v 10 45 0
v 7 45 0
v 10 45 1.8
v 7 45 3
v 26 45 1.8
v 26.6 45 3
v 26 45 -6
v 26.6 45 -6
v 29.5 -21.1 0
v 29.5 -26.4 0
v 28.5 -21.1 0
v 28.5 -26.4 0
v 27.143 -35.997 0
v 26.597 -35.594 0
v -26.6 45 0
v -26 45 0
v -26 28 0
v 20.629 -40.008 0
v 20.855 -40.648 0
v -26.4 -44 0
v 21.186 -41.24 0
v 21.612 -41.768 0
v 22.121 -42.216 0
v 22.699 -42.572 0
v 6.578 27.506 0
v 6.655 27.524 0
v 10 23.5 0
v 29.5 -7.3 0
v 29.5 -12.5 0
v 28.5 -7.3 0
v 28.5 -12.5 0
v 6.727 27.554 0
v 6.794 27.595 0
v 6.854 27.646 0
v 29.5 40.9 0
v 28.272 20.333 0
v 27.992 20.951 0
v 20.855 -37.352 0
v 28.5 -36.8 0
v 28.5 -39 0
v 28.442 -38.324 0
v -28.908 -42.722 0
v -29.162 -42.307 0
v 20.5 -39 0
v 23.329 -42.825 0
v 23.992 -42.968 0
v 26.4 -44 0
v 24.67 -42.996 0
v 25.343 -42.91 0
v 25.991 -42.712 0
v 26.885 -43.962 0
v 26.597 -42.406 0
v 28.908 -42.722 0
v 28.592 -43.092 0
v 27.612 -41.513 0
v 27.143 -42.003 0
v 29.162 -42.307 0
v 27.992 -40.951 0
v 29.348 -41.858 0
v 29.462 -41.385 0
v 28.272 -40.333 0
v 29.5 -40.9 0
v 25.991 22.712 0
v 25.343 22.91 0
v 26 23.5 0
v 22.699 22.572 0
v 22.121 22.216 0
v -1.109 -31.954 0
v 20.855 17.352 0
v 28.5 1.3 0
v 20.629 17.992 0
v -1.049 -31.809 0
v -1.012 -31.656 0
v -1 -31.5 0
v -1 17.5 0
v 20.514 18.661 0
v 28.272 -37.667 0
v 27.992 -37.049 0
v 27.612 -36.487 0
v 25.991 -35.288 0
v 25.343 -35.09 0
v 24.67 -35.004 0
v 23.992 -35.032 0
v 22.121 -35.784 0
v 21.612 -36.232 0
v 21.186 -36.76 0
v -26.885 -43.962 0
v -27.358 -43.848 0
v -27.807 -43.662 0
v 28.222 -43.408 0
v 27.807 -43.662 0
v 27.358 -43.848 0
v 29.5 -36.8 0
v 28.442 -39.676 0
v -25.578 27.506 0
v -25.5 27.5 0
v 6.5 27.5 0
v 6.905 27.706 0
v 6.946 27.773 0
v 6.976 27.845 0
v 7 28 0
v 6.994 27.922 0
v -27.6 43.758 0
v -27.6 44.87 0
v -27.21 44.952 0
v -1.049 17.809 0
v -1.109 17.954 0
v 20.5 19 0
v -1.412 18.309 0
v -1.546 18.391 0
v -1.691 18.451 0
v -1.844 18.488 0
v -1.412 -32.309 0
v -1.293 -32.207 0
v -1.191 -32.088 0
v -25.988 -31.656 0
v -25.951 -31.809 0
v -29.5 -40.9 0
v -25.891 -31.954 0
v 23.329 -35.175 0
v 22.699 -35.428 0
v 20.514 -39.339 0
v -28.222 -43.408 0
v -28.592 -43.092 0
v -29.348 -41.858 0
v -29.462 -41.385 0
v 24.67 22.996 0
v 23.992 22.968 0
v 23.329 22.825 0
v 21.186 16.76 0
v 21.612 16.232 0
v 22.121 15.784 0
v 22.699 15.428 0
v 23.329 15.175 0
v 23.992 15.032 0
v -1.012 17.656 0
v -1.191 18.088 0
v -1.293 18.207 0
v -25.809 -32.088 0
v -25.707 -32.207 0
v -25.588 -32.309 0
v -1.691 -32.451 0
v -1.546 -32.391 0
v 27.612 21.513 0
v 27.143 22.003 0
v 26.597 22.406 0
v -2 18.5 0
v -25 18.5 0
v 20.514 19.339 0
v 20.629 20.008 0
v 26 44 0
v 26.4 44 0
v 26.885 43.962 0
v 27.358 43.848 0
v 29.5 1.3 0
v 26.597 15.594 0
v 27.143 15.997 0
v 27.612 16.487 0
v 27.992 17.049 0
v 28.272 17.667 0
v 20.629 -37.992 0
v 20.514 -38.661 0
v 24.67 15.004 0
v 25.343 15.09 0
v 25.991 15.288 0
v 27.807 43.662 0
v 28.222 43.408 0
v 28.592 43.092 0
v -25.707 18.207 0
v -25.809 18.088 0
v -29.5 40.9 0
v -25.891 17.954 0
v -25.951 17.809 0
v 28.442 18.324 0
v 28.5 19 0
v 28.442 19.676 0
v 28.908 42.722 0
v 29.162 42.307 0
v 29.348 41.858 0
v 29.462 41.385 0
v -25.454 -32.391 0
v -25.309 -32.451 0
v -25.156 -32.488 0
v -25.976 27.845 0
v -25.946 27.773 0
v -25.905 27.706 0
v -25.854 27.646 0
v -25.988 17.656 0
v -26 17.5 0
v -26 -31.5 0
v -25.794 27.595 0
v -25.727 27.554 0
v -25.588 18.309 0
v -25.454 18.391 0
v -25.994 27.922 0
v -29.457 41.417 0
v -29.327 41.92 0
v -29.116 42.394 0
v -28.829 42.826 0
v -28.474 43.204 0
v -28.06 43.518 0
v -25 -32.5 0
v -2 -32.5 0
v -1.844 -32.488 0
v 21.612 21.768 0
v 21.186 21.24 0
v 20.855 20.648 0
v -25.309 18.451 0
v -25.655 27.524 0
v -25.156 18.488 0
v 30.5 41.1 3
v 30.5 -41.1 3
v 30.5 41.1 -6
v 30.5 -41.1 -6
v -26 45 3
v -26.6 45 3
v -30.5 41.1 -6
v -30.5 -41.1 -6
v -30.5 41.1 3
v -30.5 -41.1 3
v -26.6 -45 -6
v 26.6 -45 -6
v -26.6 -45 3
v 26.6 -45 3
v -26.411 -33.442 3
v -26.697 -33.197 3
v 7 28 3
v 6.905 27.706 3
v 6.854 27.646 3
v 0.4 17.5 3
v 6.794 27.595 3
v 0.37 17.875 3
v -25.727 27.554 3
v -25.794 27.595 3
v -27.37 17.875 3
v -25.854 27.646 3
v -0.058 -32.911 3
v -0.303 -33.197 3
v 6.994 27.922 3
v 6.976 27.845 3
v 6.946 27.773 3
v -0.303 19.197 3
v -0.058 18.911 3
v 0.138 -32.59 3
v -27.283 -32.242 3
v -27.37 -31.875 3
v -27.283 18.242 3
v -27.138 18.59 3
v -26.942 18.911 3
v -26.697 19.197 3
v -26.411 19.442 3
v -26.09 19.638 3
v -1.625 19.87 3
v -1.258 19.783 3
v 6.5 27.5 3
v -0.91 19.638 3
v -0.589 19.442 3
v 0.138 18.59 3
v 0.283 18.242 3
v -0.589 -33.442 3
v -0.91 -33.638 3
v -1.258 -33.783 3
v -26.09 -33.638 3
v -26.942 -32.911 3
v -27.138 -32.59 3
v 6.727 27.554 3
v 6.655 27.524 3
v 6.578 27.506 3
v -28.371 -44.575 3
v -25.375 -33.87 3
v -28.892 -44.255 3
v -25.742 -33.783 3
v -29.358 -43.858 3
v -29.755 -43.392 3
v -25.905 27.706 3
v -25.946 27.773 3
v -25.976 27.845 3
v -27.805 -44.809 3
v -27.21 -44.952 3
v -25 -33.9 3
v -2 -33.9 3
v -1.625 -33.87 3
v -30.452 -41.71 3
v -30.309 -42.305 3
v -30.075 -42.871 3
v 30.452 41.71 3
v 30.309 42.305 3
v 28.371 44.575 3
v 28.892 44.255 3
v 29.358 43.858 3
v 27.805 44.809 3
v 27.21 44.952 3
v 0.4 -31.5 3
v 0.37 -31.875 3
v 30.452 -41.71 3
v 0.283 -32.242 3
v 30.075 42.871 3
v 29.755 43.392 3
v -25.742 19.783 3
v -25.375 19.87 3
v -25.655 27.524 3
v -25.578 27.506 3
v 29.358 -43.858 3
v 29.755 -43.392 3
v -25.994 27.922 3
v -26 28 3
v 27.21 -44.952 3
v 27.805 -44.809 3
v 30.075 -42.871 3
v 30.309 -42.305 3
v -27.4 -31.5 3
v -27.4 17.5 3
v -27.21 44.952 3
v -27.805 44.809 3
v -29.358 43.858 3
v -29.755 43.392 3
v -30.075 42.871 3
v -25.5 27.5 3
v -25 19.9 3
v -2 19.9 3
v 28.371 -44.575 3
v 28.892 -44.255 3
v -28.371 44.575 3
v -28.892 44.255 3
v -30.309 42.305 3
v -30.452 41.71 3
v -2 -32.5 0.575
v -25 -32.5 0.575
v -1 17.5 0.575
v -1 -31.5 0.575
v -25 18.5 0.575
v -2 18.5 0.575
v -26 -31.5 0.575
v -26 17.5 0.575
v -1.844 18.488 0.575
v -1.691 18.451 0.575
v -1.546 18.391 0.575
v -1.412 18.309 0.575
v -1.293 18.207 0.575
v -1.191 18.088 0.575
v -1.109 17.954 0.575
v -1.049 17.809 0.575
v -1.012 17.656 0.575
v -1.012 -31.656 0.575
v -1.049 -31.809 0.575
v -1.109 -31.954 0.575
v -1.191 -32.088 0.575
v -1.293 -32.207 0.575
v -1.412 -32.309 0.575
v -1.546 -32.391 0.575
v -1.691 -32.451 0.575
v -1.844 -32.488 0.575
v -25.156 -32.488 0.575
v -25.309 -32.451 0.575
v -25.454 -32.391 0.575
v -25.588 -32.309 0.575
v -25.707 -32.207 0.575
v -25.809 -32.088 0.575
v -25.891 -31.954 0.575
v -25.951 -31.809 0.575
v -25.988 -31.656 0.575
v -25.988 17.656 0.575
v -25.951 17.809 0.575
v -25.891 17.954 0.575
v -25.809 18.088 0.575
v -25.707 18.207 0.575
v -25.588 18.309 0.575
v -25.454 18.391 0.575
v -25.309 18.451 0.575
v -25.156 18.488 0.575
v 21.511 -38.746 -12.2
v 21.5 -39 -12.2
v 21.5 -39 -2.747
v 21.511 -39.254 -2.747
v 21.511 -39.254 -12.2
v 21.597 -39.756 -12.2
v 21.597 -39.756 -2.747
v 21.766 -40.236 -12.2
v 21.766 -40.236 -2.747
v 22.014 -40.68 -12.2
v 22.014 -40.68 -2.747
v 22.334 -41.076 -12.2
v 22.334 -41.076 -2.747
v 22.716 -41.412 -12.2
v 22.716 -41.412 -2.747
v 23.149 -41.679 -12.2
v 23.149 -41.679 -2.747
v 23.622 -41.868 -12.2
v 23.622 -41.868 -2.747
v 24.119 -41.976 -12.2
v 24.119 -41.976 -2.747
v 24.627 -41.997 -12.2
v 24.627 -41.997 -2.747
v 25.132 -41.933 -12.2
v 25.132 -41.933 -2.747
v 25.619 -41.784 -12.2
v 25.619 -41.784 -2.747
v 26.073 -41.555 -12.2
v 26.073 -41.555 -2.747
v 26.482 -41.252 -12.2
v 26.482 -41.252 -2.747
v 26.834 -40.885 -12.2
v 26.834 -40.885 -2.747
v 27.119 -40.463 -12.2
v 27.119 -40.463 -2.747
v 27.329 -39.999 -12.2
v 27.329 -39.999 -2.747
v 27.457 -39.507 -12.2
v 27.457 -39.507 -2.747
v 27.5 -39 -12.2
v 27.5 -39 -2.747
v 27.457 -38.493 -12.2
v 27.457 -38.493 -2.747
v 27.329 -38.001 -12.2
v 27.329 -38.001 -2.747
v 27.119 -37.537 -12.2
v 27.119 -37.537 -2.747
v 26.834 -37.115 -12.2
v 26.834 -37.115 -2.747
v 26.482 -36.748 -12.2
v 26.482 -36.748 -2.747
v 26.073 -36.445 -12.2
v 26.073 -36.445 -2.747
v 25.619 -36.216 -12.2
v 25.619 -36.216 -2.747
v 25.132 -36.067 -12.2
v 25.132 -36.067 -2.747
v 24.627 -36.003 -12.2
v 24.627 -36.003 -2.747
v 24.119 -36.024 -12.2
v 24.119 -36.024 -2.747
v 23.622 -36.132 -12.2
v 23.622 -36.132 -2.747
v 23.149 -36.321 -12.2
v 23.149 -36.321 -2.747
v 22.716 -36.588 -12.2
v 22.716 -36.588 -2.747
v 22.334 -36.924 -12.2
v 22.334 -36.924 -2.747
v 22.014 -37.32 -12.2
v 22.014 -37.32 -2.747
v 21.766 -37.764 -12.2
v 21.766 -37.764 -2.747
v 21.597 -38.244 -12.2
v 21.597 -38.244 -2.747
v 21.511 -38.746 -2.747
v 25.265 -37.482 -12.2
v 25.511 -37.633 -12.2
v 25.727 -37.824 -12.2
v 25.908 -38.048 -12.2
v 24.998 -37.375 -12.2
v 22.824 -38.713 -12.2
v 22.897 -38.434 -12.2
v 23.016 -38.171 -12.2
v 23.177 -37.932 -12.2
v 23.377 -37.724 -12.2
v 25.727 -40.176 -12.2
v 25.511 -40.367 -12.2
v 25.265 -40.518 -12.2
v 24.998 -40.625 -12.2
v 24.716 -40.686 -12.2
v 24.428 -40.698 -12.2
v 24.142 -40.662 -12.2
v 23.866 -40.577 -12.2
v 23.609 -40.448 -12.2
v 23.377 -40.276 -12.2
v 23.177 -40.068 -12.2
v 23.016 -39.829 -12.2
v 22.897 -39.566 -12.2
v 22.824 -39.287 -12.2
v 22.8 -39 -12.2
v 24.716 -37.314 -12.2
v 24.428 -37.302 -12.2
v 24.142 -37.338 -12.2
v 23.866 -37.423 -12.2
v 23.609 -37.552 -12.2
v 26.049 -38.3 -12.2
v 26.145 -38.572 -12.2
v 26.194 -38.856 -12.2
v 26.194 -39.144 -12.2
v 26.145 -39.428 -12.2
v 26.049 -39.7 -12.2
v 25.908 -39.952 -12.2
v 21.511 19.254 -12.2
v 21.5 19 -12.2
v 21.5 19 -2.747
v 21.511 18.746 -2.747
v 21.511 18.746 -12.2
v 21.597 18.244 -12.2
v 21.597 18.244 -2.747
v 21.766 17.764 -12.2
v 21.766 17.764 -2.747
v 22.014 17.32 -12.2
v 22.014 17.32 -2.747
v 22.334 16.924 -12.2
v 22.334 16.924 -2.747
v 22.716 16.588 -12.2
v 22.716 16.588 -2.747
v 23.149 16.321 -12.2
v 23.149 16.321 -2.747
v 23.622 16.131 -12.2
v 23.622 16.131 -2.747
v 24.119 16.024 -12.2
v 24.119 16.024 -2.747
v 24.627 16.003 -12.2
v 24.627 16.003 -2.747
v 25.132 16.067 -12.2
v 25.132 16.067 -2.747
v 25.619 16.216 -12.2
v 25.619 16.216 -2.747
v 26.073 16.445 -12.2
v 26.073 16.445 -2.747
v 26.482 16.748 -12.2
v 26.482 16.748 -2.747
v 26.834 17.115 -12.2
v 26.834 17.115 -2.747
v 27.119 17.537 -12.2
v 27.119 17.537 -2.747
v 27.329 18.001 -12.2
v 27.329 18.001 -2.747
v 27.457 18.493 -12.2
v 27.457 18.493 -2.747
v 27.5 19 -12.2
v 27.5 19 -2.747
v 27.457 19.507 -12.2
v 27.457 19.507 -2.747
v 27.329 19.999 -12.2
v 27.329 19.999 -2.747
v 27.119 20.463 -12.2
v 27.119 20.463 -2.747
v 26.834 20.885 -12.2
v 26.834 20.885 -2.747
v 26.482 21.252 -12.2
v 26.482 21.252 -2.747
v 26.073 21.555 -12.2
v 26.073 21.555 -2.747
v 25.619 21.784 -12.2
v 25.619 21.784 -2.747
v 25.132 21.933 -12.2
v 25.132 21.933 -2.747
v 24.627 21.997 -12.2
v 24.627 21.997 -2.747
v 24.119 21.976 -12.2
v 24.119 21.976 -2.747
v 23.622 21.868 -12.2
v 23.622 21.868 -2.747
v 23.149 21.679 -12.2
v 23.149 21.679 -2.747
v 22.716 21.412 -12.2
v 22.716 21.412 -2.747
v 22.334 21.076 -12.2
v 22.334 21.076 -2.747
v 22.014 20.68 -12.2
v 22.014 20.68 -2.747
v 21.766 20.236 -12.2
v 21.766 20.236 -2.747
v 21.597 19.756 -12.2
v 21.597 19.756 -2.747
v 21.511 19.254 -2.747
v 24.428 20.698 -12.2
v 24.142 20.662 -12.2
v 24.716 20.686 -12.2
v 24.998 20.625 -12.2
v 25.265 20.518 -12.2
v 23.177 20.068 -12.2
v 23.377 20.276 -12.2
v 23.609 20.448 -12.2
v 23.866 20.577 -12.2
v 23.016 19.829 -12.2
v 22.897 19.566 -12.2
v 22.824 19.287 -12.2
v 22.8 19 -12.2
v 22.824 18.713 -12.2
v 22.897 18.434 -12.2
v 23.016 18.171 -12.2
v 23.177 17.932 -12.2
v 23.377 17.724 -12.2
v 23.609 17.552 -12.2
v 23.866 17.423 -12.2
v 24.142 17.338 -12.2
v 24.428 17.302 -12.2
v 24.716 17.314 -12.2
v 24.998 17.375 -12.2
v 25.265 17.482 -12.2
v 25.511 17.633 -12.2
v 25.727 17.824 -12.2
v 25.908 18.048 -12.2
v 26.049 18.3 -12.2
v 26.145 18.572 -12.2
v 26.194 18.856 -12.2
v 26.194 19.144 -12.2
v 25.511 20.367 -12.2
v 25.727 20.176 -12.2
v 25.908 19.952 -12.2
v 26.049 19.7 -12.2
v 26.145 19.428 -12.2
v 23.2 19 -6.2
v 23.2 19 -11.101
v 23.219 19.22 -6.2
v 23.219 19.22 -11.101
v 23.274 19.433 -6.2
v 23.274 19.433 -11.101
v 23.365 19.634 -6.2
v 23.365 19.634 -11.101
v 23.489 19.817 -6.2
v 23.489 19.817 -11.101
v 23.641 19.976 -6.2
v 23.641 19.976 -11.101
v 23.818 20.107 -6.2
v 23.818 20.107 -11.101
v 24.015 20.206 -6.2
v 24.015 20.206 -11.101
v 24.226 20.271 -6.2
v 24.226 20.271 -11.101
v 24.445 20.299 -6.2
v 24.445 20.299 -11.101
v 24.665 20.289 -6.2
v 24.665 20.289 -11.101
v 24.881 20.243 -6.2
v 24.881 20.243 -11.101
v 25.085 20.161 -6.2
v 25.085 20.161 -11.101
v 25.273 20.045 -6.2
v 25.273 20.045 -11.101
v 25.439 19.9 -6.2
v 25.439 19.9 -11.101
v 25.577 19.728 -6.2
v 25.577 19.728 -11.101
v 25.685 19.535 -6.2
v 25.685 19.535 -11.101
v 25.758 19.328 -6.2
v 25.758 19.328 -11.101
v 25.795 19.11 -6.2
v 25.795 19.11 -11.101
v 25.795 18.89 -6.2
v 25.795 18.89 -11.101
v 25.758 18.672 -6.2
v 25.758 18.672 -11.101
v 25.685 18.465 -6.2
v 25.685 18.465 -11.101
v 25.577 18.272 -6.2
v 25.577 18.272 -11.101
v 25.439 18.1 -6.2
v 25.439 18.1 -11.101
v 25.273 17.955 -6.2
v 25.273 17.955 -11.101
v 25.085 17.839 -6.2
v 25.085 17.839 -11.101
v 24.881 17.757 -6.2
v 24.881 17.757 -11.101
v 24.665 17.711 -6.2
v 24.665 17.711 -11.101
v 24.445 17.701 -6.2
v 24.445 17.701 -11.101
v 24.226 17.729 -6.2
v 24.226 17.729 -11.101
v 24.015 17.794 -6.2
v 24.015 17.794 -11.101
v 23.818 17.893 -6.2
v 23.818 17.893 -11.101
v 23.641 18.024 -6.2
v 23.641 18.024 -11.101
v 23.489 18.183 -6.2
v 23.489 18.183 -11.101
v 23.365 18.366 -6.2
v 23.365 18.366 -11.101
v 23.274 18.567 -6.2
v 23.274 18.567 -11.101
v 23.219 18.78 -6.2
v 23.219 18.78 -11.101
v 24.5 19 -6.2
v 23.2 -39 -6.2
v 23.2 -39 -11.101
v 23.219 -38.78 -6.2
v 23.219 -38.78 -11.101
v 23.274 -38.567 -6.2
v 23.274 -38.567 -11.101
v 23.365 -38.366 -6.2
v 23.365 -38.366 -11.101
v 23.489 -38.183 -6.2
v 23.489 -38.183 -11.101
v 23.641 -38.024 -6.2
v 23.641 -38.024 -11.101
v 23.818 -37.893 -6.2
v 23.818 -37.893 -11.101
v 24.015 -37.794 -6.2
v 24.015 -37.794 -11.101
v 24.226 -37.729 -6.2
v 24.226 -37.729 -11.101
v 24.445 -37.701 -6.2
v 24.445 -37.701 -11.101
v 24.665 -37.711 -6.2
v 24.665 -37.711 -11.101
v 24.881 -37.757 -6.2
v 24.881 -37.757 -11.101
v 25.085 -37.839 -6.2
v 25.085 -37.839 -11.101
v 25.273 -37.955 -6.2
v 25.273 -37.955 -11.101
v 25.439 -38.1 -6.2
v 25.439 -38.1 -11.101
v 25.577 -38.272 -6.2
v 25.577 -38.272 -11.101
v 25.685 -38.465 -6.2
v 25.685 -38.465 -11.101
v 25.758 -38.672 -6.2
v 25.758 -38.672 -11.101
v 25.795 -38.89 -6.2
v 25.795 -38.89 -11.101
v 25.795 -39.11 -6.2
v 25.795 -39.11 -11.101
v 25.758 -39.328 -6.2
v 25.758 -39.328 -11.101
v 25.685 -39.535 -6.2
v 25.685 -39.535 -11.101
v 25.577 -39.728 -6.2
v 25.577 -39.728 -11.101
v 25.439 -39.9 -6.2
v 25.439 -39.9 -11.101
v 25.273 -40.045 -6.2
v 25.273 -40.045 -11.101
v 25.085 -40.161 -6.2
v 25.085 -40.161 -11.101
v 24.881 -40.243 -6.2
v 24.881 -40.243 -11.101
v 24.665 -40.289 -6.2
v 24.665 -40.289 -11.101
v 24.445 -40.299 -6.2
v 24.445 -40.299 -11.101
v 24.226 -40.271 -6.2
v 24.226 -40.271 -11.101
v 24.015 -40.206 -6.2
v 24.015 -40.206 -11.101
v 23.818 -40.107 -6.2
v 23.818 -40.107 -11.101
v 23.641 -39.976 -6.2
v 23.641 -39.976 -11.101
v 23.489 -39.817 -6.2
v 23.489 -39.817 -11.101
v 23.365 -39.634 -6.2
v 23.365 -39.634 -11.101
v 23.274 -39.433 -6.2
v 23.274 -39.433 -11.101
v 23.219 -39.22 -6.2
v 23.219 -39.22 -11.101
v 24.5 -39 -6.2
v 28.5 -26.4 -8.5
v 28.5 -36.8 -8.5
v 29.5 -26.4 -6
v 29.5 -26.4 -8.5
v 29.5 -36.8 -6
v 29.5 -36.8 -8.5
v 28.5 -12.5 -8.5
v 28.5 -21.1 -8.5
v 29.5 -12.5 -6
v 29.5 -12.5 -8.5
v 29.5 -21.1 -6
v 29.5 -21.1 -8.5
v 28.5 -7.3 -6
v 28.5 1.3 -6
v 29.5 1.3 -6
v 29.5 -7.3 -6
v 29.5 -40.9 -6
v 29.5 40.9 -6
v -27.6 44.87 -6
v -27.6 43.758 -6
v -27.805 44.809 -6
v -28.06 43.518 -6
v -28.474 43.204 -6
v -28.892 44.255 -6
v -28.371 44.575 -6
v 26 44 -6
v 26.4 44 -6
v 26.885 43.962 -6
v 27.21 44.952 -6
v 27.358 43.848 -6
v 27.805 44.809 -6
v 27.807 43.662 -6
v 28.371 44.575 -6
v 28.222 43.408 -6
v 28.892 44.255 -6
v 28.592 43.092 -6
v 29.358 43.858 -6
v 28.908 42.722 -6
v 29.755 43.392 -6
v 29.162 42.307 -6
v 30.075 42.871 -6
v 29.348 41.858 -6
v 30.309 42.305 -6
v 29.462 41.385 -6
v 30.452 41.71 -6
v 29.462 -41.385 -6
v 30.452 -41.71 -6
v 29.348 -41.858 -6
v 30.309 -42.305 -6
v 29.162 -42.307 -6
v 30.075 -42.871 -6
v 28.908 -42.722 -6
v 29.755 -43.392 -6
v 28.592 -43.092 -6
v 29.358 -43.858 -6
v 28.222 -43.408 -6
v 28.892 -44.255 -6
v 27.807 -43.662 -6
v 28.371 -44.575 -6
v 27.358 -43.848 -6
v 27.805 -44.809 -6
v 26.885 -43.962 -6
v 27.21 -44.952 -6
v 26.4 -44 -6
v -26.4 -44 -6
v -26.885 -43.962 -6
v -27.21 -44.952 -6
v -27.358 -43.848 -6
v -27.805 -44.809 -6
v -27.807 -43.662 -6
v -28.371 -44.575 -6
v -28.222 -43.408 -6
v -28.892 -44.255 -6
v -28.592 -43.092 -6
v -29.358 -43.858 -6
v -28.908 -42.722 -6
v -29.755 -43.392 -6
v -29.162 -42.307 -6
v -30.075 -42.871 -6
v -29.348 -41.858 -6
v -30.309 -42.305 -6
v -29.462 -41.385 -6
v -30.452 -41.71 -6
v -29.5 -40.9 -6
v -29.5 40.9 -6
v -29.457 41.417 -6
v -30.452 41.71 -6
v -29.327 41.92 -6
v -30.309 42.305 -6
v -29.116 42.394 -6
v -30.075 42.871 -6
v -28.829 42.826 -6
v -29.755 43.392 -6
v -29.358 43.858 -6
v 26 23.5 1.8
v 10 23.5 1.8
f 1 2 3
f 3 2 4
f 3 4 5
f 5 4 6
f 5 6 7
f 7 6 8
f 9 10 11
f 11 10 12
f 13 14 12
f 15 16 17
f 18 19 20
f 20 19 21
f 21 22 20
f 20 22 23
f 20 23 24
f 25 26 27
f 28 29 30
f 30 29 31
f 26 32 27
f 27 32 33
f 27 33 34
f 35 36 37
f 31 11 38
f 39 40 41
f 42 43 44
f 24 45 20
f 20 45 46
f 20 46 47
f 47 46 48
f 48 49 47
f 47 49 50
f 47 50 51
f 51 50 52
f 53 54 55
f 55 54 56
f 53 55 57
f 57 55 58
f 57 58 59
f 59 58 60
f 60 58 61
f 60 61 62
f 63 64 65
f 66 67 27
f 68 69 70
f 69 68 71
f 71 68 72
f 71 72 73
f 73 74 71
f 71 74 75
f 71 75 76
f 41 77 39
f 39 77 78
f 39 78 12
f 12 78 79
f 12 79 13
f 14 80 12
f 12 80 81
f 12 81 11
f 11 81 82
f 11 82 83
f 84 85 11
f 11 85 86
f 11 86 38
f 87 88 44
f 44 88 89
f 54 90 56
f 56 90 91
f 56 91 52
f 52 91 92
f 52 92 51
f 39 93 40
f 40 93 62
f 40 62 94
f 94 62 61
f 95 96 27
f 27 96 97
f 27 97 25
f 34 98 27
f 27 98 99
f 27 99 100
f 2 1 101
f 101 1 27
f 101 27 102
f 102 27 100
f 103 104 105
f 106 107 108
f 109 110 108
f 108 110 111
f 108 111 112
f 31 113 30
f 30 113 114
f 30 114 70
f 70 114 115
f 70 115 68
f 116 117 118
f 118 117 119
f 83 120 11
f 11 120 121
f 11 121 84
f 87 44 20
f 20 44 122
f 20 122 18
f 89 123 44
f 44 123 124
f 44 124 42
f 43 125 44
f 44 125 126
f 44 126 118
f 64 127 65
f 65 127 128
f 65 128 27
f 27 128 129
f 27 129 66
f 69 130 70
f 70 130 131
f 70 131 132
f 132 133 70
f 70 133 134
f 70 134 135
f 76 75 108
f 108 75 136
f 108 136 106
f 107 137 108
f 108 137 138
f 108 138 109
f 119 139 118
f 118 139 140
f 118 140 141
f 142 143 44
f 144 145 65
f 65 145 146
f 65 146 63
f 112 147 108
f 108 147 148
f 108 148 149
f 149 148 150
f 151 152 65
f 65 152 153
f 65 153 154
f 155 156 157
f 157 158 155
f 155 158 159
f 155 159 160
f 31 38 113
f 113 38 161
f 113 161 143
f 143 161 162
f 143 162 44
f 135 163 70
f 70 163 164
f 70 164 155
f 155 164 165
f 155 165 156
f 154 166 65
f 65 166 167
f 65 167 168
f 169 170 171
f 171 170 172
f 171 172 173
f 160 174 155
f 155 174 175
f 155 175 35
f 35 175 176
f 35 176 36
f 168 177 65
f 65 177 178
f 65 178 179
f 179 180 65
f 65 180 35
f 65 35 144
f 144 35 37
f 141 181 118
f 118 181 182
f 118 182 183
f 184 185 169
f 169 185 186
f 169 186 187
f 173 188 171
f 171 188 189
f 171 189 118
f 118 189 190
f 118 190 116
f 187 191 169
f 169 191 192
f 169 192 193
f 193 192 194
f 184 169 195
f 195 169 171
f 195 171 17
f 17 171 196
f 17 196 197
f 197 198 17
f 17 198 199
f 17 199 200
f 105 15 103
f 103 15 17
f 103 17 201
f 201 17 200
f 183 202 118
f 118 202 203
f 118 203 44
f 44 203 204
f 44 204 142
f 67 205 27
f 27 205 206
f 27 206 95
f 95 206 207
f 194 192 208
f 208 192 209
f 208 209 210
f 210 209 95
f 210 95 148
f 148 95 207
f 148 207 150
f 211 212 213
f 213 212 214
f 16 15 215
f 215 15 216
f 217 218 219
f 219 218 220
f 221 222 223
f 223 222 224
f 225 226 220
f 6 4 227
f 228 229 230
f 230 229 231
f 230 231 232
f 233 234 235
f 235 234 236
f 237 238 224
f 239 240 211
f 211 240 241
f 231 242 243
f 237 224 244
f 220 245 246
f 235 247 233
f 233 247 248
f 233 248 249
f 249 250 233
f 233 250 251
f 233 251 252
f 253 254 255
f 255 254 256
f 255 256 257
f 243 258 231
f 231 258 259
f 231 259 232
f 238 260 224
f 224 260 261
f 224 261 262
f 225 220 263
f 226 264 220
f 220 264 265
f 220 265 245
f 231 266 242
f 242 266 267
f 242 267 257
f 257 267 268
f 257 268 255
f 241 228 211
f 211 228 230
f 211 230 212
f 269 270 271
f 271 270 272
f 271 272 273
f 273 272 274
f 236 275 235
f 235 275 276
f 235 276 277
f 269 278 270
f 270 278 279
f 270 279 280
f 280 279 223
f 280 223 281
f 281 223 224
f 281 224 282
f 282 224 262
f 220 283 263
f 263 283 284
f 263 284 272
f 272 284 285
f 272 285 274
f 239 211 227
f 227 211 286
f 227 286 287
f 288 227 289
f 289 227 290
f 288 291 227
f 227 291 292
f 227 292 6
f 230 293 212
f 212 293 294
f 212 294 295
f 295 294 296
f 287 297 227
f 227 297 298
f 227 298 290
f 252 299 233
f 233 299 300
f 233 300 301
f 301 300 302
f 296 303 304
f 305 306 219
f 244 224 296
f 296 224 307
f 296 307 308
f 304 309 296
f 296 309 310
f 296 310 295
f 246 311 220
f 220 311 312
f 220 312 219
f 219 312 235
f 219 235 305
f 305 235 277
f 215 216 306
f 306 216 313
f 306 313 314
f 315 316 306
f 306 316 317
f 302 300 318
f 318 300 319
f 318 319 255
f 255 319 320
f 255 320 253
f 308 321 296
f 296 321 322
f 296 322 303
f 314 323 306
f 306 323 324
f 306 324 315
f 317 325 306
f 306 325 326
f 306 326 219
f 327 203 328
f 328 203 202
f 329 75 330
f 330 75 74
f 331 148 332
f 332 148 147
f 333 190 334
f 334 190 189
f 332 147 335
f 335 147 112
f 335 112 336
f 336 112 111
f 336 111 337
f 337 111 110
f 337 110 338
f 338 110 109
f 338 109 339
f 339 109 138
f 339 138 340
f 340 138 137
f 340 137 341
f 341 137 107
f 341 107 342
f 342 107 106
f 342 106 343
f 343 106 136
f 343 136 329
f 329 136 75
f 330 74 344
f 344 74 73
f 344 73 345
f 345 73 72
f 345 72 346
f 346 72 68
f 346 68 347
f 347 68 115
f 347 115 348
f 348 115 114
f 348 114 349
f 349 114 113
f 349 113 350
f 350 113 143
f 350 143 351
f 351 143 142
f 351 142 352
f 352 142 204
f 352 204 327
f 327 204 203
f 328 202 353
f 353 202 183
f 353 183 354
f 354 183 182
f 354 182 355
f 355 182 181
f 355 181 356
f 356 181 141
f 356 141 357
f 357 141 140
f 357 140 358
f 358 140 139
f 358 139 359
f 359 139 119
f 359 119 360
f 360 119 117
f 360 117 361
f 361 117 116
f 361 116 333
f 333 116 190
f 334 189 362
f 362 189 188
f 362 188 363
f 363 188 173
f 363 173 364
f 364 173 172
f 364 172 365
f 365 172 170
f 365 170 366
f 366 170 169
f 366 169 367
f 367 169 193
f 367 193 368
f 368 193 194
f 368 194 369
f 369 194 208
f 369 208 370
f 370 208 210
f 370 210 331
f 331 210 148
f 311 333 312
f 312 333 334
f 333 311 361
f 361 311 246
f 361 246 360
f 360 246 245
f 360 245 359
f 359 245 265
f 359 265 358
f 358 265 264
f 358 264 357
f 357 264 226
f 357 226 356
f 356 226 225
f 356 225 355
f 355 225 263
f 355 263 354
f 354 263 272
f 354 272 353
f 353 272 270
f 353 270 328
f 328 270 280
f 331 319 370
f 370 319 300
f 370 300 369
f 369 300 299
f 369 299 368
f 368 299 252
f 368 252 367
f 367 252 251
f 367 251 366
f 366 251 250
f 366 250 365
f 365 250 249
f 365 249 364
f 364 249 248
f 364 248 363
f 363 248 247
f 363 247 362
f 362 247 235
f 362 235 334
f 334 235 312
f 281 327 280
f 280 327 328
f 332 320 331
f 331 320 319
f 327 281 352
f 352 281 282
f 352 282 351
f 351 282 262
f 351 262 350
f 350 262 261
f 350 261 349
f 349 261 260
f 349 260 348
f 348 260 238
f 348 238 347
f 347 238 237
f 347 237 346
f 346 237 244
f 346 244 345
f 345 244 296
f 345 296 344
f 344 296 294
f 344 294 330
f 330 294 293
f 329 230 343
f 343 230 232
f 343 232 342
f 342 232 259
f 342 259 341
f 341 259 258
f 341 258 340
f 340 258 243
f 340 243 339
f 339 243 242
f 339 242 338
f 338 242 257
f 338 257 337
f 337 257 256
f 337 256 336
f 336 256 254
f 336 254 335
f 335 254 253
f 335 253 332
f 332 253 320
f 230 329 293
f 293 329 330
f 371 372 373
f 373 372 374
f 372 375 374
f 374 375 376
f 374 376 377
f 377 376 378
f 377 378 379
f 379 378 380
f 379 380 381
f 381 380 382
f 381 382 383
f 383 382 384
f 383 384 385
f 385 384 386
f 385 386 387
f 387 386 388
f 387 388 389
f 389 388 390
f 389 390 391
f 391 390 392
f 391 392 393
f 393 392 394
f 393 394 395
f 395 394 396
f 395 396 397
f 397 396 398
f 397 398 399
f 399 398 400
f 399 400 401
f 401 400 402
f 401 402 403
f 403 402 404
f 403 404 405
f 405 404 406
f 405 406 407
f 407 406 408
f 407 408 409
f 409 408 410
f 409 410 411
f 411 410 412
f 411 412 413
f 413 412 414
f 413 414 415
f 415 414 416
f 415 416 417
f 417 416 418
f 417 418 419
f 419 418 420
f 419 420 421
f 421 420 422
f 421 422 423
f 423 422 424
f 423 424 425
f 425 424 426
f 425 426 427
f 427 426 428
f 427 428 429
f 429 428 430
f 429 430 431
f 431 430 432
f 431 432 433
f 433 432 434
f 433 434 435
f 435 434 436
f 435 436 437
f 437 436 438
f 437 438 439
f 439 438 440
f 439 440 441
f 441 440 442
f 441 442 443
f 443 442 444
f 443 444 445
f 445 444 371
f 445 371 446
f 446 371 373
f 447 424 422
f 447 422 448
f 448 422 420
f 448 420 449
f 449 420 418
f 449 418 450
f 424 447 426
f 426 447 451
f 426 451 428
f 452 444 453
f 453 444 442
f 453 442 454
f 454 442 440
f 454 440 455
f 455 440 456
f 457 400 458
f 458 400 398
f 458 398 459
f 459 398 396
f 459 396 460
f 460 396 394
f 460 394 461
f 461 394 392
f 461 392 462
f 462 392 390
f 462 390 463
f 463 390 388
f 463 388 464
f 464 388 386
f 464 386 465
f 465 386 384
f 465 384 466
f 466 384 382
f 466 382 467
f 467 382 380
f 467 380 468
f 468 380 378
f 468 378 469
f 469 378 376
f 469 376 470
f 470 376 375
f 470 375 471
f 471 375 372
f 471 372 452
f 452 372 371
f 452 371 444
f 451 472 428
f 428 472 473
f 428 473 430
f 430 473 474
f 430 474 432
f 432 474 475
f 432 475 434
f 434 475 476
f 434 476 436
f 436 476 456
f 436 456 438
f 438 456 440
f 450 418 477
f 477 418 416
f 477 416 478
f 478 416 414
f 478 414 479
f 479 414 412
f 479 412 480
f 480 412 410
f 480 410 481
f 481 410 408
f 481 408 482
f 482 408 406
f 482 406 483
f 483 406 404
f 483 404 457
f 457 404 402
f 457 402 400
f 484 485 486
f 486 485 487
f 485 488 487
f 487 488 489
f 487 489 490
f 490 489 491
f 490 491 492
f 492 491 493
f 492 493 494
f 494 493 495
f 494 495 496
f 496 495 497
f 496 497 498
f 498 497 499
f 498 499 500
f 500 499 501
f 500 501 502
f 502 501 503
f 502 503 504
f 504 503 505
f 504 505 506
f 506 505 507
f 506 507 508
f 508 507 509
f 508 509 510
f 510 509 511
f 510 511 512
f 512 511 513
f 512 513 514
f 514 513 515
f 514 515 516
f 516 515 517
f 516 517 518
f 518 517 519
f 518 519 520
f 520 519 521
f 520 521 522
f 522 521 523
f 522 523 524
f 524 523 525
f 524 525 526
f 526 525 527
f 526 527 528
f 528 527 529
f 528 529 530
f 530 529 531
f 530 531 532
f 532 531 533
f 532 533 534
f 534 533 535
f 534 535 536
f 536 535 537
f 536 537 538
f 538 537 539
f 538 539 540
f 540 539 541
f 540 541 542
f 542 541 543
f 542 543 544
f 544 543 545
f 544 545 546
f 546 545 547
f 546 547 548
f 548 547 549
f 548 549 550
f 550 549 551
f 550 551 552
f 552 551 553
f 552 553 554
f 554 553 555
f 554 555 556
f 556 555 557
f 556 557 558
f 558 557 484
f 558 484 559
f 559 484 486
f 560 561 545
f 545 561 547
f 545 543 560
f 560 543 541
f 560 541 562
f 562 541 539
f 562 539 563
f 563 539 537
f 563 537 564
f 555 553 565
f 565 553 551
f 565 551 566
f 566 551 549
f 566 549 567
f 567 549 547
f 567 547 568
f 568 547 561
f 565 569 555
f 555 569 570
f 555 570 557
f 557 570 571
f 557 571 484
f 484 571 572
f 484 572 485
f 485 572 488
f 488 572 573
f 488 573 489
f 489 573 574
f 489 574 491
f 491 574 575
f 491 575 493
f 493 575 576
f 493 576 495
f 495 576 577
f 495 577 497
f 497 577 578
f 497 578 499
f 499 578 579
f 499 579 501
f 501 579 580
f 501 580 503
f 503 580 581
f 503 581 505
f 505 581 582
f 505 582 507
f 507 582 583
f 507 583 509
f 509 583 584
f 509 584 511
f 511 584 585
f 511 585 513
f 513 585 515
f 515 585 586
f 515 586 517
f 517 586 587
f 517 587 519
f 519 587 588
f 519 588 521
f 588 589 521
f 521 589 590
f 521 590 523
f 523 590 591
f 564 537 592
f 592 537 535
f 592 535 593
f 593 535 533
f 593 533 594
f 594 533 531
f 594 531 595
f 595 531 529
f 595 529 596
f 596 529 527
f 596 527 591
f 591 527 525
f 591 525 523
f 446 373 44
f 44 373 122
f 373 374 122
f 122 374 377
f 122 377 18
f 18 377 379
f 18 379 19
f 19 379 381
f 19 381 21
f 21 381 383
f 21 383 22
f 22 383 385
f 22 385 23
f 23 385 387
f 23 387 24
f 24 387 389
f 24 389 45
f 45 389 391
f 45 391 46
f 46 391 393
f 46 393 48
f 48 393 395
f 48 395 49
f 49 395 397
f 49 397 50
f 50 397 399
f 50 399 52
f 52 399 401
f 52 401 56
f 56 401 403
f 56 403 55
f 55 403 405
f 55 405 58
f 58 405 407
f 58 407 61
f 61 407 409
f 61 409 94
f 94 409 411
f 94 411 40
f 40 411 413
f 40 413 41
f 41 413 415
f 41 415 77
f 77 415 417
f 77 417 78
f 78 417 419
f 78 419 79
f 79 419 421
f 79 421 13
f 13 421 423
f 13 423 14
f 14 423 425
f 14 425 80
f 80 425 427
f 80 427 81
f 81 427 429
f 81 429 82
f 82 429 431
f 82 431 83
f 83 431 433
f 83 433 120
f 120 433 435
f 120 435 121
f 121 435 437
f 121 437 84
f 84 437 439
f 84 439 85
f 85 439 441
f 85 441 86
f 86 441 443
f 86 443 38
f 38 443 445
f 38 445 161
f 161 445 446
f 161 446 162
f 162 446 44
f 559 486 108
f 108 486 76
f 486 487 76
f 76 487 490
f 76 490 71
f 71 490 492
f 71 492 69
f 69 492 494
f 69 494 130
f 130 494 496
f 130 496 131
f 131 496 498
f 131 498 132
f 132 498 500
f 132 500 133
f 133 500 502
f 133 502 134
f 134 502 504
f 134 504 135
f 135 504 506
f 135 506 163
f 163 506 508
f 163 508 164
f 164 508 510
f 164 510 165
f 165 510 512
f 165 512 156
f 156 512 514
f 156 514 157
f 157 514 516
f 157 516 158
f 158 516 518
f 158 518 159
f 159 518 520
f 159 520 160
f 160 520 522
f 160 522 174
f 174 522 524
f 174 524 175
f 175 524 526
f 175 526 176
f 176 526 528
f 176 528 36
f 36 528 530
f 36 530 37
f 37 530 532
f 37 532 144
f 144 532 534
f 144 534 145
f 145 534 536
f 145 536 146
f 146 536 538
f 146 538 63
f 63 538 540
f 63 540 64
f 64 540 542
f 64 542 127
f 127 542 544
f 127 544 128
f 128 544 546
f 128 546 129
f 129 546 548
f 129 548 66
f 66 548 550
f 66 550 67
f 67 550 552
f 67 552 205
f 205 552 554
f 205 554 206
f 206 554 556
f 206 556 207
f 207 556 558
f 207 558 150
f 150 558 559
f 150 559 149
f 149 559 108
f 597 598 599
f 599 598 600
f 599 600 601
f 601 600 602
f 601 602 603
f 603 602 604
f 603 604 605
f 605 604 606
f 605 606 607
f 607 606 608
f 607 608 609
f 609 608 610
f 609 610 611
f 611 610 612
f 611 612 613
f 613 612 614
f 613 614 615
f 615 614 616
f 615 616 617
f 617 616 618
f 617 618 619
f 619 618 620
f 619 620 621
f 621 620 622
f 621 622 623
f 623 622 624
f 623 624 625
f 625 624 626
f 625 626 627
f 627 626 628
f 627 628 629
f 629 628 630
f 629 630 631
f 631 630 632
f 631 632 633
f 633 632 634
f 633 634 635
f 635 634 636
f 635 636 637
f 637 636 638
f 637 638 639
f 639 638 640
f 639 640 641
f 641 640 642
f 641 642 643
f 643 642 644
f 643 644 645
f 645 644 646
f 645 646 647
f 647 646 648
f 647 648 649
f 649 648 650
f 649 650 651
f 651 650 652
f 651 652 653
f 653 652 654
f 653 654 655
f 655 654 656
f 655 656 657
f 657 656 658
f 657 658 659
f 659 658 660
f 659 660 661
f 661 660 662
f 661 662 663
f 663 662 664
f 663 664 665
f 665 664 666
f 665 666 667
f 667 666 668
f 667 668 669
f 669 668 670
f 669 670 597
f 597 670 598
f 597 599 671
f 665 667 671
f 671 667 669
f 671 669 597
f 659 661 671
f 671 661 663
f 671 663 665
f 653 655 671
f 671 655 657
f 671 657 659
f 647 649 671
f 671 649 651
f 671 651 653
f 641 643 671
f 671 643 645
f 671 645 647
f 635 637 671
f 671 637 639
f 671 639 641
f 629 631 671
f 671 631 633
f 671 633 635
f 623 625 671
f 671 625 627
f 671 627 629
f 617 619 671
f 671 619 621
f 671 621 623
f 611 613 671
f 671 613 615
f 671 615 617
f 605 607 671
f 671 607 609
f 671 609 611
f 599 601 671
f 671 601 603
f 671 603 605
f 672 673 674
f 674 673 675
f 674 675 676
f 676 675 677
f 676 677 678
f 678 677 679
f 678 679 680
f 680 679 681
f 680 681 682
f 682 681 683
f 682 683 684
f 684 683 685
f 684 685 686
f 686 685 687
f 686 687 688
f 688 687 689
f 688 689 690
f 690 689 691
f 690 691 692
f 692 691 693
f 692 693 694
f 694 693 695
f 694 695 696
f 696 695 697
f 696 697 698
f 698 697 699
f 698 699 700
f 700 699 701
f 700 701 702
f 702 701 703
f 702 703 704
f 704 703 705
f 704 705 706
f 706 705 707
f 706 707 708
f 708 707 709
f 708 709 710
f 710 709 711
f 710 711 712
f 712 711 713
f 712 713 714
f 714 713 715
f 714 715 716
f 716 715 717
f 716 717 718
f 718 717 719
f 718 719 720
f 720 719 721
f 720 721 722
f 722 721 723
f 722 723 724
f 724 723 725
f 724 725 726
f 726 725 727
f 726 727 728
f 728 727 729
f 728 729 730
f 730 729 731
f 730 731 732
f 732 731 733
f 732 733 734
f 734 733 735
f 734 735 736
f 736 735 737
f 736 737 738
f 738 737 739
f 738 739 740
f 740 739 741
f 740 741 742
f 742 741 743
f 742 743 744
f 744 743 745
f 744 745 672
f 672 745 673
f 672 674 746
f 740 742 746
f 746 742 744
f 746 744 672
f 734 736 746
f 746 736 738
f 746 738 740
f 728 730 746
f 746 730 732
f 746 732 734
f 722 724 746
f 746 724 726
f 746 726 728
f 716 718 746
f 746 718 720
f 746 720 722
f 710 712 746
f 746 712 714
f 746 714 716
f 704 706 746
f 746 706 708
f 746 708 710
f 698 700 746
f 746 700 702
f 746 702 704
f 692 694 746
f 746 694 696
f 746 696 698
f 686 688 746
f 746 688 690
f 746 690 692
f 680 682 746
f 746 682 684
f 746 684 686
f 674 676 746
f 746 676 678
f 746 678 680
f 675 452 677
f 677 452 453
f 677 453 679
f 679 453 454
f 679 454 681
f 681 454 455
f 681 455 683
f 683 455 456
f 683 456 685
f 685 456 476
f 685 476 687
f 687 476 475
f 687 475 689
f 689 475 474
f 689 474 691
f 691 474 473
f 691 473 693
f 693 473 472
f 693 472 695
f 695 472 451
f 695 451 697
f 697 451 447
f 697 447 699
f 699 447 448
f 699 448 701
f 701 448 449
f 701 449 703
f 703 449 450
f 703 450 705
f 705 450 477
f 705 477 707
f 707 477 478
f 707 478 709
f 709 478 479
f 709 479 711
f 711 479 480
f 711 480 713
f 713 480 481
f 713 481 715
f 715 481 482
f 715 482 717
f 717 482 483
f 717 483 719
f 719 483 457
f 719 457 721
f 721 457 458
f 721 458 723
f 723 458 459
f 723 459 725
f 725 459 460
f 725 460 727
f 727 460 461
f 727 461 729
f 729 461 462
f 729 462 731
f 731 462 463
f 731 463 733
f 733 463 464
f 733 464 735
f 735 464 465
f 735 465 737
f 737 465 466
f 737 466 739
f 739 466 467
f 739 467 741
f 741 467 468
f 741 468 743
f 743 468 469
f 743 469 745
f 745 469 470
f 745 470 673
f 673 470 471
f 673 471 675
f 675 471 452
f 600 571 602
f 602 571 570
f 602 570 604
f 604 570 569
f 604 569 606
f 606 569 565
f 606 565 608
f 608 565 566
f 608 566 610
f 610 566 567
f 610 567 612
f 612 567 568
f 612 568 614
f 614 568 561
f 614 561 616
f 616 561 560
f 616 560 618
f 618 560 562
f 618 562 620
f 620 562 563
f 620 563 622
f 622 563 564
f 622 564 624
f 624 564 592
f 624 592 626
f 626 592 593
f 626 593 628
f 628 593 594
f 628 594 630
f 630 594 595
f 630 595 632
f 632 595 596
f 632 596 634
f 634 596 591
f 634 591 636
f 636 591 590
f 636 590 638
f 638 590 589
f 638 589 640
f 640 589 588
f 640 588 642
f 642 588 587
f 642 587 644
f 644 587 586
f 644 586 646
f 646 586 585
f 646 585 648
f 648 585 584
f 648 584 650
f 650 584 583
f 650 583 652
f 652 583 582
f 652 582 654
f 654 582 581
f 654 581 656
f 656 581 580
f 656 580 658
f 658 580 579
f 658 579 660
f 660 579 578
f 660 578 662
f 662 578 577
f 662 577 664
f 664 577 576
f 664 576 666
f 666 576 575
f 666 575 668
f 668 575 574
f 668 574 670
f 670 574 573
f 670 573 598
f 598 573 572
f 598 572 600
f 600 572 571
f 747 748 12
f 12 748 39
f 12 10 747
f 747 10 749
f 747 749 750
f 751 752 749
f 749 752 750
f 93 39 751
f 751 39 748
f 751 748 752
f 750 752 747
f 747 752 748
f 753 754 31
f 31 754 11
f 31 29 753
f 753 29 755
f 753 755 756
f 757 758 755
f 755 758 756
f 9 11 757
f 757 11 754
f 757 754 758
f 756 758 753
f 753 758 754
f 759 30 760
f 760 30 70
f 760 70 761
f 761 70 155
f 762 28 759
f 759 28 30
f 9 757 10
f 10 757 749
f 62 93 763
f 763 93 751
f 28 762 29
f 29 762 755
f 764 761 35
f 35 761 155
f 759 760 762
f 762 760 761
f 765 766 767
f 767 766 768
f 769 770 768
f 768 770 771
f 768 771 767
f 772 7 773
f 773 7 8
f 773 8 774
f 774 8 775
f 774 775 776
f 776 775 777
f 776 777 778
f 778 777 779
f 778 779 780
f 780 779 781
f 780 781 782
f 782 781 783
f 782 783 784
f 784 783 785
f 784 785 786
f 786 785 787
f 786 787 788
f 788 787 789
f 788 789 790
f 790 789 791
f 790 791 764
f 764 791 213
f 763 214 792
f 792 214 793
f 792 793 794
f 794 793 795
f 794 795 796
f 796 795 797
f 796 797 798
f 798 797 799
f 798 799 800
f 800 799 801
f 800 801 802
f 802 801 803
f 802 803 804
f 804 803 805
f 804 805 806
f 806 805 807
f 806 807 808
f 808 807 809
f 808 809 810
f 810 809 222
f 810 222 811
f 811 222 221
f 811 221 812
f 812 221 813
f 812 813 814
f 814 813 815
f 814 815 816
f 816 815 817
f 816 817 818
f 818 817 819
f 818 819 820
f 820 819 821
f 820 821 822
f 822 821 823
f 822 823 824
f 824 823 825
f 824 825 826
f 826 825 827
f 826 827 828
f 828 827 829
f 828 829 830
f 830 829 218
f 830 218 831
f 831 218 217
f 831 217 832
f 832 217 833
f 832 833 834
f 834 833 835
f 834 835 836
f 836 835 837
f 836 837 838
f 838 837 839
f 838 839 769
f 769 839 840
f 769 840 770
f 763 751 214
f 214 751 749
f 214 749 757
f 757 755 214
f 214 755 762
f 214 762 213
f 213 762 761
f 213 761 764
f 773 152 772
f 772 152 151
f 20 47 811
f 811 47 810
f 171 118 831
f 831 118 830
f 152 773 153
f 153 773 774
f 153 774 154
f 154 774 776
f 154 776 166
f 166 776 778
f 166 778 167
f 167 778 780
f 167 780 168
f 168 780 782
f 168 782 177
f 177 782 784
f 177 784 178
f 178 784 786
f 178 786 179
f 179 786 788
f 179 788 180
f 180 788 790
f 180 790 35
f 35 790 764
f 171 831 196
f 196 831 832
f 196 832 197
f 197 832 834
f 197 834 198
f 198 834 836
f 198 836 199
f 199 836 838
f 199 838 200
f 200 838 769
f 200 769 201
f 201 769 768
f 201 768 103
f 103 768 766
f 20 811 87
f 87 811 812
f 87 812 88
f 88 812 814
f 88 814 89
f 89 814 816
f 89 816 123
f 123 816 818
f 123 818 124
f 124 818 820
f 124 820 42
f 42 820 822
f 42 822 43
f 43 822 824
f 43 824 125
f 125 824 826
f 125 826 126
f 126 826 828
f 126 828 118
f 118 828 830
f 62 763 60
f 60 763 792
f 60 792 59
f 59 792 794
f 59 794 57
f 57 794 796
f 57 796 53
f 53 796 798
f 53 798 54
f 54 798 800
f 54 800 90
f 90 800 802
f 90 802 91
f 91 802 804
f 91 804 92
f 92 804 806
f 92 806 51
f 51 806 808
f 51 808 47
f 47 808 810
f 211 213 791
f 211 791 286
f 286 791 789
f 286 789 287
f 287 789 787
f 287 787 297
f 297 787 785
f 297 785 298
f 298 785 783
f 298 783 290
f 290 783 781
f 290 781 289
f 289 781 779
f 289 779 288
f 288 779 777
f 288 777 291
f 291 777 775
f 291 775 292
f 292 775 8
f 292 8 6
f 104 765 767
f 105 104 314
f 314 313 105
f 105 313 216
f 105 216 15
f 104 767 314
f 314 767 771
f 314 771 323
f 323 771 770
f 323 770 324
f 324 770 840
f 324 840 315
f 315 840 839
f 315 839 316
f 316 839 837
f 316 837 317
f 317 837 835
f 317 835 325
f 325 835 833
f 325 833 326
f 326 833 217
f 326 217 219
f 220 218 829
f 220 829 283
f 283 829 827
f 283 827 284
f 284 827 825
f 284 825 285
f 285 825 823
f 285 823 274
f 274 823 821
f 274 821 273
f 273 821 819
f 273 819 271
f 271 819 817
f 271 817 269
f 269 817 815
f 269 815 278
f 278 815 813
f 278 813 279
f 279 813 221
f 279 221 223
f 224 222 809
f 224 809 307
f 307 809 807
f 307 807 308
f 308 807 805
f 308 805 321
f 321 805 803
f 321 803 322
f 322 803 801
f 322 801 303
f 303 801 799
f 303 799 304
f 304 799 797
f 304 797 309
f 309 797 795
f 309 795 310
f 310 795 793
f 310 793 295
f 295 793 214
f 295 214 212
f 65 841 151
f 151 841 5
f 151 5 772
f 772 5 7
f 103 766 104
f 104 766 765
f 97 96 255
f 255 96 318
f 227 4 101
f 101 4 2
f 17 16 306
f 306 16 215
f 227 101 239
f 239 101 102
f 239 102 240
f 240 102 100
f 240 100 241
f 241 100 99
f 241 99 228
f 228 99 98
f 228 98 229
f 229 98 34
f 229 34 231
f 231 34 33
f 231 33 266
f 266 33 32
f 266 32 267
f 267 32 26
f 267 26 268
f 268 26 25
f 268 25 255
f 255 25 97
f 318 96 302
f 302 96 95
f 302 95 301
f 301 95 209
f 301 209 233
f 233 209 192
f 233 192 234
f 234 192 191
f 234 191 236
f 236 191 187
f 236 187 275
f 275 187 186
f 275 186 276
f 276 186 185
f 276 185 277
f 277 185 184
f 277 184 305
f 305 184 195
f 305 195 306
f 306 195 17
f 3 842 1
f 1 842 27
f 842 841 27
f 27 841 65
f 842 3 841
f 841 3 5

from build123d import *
from OCP.BRepFilletAPI import BRepFilletAPI_MakeChamfer

# Parameters (mm, degrees)
SKETCH_1_W          = 61
SKETCH_1_H          = 90
EXTRUDE_1_DEPTH     = 3
SKETCH_3_W          = 25
SKETCH_3_H          = 51
CUT_EXTRUDE_1_DEPTH = 3
FILLET_1_R          = 1
CHAMFER_1_SIZE      = 1.4
CHAMFER_1_SIZE2     = 2.424871131
SKETCH_7_R          = 3
EXTRUDE_2_DEPTH     = 12.2
CHAMFER_2_SIZE      = 1
CHAMFER_2_SIZE2     = 2.747477419
SKETCH_8_R          = 1.3
CUT_EXTRUDE_2_DEPTH = 6
CHAMFER_3_SIZE      = 0.4
CHAMFER_3_SIZE2     = 1.098990968
SKETCH_10_W         = 1
SKETCH_10_H         = 10.4
SKETCH_10_H_2       = 8.6
EXTRUDE_3_DEPTH     = 8.5
SKETCH_11_W         = 61
SKETCH_11_H         = 90
SKETCH_11_W_2       = 59
SKETCH_11_H_2       = 88
EXTRUDE_4_DEPTH     = 6
FILLET_2_R          = 3.1
FILLET_3_R          = 3.9
CUT_EXTRUDE_3_DEPTH = 6
SKETCH_13_W         = 33
SKETCH_13_H         = 17.5
CUT_EXTRUDE_4_DEPTH = 3
FILLET_4_R          = 0.5
SKETCH_14_W         = 16
SKETCH_14_H         = 21.5
CUT_EXTRUDE_5_DEPTH = 1.8
SKETCH_15_W         = 2.5
SKETCH_15_H         = 8.6
CUT_EXTRUDE_6_DEPTH = 1


with BuildPart() as part:
    # 草图1 → 凸台-拉伸1 (new body)
    with BuildSketch(Plane.XY):
        Rectangle(SKETCH_1_W, SKETCH_1_H)
    extrude(amount=EXTRUDE_1_DEPTH)

    # 草图3 → 切除-拉伸1 (cut)
    with BuildSketch(Plane.XY.offset(3)):
        with Locations((-13.5, -7)):
            Rectangle(SKETCH_3_W, SKETCH_3_H)
    extrude(amount=-CUT_EXTRUDE_1_DEPTH, mode=Mode.SUBTRACT)

    # 圆角1
    fillet_1_edges = [part.edges().sort_by_distance(p)[0] for p in [
        (-1, -32.5, 1.5),
        (-1, 18.5, 1.5),
        (-26, 18.5, 1.5),
        (-26, -32.5, 1.5),
    ]]
    fillet(fillet_1_edges, radius=FILLET_1_R)

    # 倒角1
    chamfer_1_edges = [part.edges().sort_by_distance(p)[0] for p in [
        (-13.5, 18.5, 3),
        (-1, -7, 3),
        (-13.5, -32.5, 3),
        (-26, -7, 3),
        (-1.292893219, 18.207106781, 3),
        (-1.292893219, -32.207106781, 3),
        (-25.707106781, -32.207106781, 3),
        (-25.707106781, 18.207106781, 3),
    ]]
    chamfer_1_side = [part.faces().sort_by_distance(p)[0] for p in [
        (4.080049622, 2.115581285, 3),
    ]]
    chamfer(chamfer_1_edges, length=CHAMFER_1_SIZE, length2=CHAMFER_1_SIZE2, reference=chamfer_1_side[0])

    # 草图7 → 凸台-拉伸2 (add)
    with BuildSketch(Plane(origin=(0, 0, 0), x_dir=(-1, 0, 0), z_dir=(0, 0, -1))):
        with Locations((-24.5, -39)):
            Circle(SKETCH_7_R)
        with Locations((-24.5, 19)):
            Circle(SKETCH_7_R)
    extrude(amount=EXTRUDE_2_DEPTH)

    # 倒角2
    chamfer_2_edges = [part.edges().sort_by_distance(p)[0] for p in [
        (27.5, -39, 0),
        (27.5, 19, 0),
    ]]
    chamfer_2_side = [part.faces().sort_by_distance(p)[0] for p in [
        (3.802426395, 2.28030092, 0),
    ]]
    chamfer(chamfer_2_edges, length=CHAMFER_2_SIZE, length2=CHAMFER_2_SIZE2, reference=chamfer_2_side[0])

    # 草图8 → 切除-拉伸2 (cut)
    with BuildSketch(Plane(origin=(0, 0, -12.2), x_dir=(-1, 0, 0), z_dir=(0, 0, -1))):
        with Locations((-24.5, 19)):
            Circle(SKETCH_8_R)
        with Locations((-24.5, -39)):
            Circle(SKETCH_8_R)
    extrude(amount=-CUT_EXTRUDE_2_DEPTH, mode=Mode.SUBTRACT)

    # 倒角3: one chamfer whose edges measure the first distance from different faces: ONE call of the kernel's chamfer builder (chamfer() names one face for all edges)
    chamfer_3_edges_1 = [part.edges().sort_by_distance(p)[0] for p in [
        (25.8, 19, -12.2),
    ]]
    chamfer_3_side_1 = [part.faces().sort_by_distance(p)[0] for p in [
        (27.415147186, 19, -12.2),
    ]]
    chamfer_3_edges_2 = [part.edges().sort_by_distance(p)[0] for p in [
        (25.8, -39, -12.2),
    ]]
    chamfer_3_side_2 = [part.faces().sort_by_distance(p)[0] for p in [
        (27.415147186, -39, -12.2),
    ]]
    chamfer_3 = BRepFilletAPI_MakeChamfer(part.part.solid().wrapped)
    for e in chamfer_3_edges_1:
        chamfer_3.Add(CHAMFER_3_SIZE, CHAMFER_3_SIZE2, e.wrapped, chamfer_3_side_1[0].wrapped)  # the first distance lies on this face
    for e in chamfer_3_edges_2:
        chamfer_3.Add(CHAMFER_3_SIZE, CHAMFER_3_SIZE2, e.wrapped, chamfer_3_side_2[0].wrapped)  # the first distance lies on this face
    add(Compound.cast(chamfer_3.Shape()), mode=Mode.REPLACE)

    # 草图10 → 凸台-拉伸3 (add)
    with BuildSketch(Plane(origin=(0, 0, 0), x_dir=(-1, 0, 0), z_dir=(0, 0, -1))):
        with Locations((-29, -31.6)):
            Rectangle(SKETCH_10_W, SKETCH_10_H)
        with Locations((-29, -16.8)):
            Rectangle(SKETCH_10_W, SKETCH_10_H_2)
        with Locations((-29, -3)):
            Rectangle(SKETCH_10_W, SKETCH_10_H_2)
    extrude(amount=EXTRUDE_3_DEPTH)

    # 草图11 → 凸台-拉伸4 (add)
    with BuildSketch(Plane(origin=(0, 0, 0), x_dir=(-1, 0, 0), z_dir=(0, 0, -1))):
        Rectangle(SKETCH_11_W, SKETCH_11_H)
        Rectangle(SKETCH_11_W_2, SKETCH_11_H_2, mode=Mode.SUBTRACT)
    extrude(amount=EXTRUDE_4_DEPTH)

    # 圆角2
    fillet_2_edges = [part.edges().sort_by_distance(p)[0] for p in [
        (29.5, -44, -3),
        (29.5, 44, -3),
        (-29.5, -44, -3),
        (-29.5, 44, -3),
    ]]
    fillet(fillet_2_edges, radius=FILLET_2_R)

    # 圆角3
    fillet_3_edges = [part.edges().sort_by_distance(p)[0] for p in [
        (30.5, -45, -1.5),
        (-30.5, -45, -1.5),
        (-30.5, 45, -1.5),
        (30.5, 45, -1.5),
    ]]
    fillet(fillet_3_edges, radius=FILLET_3_R)

    # 草图12 → 切除-拉伸3 (cut)
    with BuildSketch(Plane(origin=(0, 0, -6), x_dir=(-1, 0, 0), z_dir=(0, 0, -1))):
        with BuildLine():
            Line((-26, 45), (27.6, 45))
            Line((27.6, 45), (27.6, 43.758321186))
            ThreePointArc((27.6, 43.758321186), (27.012047516, 43.938979736), (26.4, 44))
            Line((26.4, 44), (-26, 44))
            Line((-26, 44), (-26, 45))
        make_face()
    extrude(amount=-CUT_EXTRUDE_3_DEPTH, mode=Mode.SUBTRACT)

    # 草图13 → 切除-拉伸4 (cut)
    with BuildSketch(Plane.XY.offset(3)):
        with Locations((-9.5, 36.25)):
            Rectangle(SKETCH_13_W, SKETCH_13_H)
    extrude(amount=-CUT_EXTRUDE_4_DEPTH, mode=Mode.SUBTRACT)

    # 圆角4
    fillet_4_edges = [part.edges().sort_by_distance(p)[0] for p in [
        (7, 27.5, 1.5),
        (-26, 27.5, 1.5),
    ]]
    fillet(fillet_4_edges, radius=FILLET_4_R)

    # 草图14 → 切除-拉伸5 (cut)
    with BuildSketch(Plane(origin=(0, 0, 0), x_dir=(-1, 0, 0), z_dir=(0, 0, -1))):
        with Locations((-18, 34.25)):
            Rectangle(SKETCH_14_W, SKETCH_14_H)
    extrude(amount=-CUT_EXTRUDE_5_DEPTH, mode=Mode.SUBTRACT)

    # 草图15 → 切除-拉伸6 (cut)
    with BuildSketch(Plane(origin=(29.5, 0, 0), x_dir=(0, 0, -1), z_dir=(1, 0, 0))):
        with Locations((7.25, -3)):
            Rectangle(SKETCH_15_W, SKETCH_15_H)
    extrude(amount=-CUT_EXTRUDE_6_DEPTH, mode=Mode.SUBTRACT)


solid = part.part
